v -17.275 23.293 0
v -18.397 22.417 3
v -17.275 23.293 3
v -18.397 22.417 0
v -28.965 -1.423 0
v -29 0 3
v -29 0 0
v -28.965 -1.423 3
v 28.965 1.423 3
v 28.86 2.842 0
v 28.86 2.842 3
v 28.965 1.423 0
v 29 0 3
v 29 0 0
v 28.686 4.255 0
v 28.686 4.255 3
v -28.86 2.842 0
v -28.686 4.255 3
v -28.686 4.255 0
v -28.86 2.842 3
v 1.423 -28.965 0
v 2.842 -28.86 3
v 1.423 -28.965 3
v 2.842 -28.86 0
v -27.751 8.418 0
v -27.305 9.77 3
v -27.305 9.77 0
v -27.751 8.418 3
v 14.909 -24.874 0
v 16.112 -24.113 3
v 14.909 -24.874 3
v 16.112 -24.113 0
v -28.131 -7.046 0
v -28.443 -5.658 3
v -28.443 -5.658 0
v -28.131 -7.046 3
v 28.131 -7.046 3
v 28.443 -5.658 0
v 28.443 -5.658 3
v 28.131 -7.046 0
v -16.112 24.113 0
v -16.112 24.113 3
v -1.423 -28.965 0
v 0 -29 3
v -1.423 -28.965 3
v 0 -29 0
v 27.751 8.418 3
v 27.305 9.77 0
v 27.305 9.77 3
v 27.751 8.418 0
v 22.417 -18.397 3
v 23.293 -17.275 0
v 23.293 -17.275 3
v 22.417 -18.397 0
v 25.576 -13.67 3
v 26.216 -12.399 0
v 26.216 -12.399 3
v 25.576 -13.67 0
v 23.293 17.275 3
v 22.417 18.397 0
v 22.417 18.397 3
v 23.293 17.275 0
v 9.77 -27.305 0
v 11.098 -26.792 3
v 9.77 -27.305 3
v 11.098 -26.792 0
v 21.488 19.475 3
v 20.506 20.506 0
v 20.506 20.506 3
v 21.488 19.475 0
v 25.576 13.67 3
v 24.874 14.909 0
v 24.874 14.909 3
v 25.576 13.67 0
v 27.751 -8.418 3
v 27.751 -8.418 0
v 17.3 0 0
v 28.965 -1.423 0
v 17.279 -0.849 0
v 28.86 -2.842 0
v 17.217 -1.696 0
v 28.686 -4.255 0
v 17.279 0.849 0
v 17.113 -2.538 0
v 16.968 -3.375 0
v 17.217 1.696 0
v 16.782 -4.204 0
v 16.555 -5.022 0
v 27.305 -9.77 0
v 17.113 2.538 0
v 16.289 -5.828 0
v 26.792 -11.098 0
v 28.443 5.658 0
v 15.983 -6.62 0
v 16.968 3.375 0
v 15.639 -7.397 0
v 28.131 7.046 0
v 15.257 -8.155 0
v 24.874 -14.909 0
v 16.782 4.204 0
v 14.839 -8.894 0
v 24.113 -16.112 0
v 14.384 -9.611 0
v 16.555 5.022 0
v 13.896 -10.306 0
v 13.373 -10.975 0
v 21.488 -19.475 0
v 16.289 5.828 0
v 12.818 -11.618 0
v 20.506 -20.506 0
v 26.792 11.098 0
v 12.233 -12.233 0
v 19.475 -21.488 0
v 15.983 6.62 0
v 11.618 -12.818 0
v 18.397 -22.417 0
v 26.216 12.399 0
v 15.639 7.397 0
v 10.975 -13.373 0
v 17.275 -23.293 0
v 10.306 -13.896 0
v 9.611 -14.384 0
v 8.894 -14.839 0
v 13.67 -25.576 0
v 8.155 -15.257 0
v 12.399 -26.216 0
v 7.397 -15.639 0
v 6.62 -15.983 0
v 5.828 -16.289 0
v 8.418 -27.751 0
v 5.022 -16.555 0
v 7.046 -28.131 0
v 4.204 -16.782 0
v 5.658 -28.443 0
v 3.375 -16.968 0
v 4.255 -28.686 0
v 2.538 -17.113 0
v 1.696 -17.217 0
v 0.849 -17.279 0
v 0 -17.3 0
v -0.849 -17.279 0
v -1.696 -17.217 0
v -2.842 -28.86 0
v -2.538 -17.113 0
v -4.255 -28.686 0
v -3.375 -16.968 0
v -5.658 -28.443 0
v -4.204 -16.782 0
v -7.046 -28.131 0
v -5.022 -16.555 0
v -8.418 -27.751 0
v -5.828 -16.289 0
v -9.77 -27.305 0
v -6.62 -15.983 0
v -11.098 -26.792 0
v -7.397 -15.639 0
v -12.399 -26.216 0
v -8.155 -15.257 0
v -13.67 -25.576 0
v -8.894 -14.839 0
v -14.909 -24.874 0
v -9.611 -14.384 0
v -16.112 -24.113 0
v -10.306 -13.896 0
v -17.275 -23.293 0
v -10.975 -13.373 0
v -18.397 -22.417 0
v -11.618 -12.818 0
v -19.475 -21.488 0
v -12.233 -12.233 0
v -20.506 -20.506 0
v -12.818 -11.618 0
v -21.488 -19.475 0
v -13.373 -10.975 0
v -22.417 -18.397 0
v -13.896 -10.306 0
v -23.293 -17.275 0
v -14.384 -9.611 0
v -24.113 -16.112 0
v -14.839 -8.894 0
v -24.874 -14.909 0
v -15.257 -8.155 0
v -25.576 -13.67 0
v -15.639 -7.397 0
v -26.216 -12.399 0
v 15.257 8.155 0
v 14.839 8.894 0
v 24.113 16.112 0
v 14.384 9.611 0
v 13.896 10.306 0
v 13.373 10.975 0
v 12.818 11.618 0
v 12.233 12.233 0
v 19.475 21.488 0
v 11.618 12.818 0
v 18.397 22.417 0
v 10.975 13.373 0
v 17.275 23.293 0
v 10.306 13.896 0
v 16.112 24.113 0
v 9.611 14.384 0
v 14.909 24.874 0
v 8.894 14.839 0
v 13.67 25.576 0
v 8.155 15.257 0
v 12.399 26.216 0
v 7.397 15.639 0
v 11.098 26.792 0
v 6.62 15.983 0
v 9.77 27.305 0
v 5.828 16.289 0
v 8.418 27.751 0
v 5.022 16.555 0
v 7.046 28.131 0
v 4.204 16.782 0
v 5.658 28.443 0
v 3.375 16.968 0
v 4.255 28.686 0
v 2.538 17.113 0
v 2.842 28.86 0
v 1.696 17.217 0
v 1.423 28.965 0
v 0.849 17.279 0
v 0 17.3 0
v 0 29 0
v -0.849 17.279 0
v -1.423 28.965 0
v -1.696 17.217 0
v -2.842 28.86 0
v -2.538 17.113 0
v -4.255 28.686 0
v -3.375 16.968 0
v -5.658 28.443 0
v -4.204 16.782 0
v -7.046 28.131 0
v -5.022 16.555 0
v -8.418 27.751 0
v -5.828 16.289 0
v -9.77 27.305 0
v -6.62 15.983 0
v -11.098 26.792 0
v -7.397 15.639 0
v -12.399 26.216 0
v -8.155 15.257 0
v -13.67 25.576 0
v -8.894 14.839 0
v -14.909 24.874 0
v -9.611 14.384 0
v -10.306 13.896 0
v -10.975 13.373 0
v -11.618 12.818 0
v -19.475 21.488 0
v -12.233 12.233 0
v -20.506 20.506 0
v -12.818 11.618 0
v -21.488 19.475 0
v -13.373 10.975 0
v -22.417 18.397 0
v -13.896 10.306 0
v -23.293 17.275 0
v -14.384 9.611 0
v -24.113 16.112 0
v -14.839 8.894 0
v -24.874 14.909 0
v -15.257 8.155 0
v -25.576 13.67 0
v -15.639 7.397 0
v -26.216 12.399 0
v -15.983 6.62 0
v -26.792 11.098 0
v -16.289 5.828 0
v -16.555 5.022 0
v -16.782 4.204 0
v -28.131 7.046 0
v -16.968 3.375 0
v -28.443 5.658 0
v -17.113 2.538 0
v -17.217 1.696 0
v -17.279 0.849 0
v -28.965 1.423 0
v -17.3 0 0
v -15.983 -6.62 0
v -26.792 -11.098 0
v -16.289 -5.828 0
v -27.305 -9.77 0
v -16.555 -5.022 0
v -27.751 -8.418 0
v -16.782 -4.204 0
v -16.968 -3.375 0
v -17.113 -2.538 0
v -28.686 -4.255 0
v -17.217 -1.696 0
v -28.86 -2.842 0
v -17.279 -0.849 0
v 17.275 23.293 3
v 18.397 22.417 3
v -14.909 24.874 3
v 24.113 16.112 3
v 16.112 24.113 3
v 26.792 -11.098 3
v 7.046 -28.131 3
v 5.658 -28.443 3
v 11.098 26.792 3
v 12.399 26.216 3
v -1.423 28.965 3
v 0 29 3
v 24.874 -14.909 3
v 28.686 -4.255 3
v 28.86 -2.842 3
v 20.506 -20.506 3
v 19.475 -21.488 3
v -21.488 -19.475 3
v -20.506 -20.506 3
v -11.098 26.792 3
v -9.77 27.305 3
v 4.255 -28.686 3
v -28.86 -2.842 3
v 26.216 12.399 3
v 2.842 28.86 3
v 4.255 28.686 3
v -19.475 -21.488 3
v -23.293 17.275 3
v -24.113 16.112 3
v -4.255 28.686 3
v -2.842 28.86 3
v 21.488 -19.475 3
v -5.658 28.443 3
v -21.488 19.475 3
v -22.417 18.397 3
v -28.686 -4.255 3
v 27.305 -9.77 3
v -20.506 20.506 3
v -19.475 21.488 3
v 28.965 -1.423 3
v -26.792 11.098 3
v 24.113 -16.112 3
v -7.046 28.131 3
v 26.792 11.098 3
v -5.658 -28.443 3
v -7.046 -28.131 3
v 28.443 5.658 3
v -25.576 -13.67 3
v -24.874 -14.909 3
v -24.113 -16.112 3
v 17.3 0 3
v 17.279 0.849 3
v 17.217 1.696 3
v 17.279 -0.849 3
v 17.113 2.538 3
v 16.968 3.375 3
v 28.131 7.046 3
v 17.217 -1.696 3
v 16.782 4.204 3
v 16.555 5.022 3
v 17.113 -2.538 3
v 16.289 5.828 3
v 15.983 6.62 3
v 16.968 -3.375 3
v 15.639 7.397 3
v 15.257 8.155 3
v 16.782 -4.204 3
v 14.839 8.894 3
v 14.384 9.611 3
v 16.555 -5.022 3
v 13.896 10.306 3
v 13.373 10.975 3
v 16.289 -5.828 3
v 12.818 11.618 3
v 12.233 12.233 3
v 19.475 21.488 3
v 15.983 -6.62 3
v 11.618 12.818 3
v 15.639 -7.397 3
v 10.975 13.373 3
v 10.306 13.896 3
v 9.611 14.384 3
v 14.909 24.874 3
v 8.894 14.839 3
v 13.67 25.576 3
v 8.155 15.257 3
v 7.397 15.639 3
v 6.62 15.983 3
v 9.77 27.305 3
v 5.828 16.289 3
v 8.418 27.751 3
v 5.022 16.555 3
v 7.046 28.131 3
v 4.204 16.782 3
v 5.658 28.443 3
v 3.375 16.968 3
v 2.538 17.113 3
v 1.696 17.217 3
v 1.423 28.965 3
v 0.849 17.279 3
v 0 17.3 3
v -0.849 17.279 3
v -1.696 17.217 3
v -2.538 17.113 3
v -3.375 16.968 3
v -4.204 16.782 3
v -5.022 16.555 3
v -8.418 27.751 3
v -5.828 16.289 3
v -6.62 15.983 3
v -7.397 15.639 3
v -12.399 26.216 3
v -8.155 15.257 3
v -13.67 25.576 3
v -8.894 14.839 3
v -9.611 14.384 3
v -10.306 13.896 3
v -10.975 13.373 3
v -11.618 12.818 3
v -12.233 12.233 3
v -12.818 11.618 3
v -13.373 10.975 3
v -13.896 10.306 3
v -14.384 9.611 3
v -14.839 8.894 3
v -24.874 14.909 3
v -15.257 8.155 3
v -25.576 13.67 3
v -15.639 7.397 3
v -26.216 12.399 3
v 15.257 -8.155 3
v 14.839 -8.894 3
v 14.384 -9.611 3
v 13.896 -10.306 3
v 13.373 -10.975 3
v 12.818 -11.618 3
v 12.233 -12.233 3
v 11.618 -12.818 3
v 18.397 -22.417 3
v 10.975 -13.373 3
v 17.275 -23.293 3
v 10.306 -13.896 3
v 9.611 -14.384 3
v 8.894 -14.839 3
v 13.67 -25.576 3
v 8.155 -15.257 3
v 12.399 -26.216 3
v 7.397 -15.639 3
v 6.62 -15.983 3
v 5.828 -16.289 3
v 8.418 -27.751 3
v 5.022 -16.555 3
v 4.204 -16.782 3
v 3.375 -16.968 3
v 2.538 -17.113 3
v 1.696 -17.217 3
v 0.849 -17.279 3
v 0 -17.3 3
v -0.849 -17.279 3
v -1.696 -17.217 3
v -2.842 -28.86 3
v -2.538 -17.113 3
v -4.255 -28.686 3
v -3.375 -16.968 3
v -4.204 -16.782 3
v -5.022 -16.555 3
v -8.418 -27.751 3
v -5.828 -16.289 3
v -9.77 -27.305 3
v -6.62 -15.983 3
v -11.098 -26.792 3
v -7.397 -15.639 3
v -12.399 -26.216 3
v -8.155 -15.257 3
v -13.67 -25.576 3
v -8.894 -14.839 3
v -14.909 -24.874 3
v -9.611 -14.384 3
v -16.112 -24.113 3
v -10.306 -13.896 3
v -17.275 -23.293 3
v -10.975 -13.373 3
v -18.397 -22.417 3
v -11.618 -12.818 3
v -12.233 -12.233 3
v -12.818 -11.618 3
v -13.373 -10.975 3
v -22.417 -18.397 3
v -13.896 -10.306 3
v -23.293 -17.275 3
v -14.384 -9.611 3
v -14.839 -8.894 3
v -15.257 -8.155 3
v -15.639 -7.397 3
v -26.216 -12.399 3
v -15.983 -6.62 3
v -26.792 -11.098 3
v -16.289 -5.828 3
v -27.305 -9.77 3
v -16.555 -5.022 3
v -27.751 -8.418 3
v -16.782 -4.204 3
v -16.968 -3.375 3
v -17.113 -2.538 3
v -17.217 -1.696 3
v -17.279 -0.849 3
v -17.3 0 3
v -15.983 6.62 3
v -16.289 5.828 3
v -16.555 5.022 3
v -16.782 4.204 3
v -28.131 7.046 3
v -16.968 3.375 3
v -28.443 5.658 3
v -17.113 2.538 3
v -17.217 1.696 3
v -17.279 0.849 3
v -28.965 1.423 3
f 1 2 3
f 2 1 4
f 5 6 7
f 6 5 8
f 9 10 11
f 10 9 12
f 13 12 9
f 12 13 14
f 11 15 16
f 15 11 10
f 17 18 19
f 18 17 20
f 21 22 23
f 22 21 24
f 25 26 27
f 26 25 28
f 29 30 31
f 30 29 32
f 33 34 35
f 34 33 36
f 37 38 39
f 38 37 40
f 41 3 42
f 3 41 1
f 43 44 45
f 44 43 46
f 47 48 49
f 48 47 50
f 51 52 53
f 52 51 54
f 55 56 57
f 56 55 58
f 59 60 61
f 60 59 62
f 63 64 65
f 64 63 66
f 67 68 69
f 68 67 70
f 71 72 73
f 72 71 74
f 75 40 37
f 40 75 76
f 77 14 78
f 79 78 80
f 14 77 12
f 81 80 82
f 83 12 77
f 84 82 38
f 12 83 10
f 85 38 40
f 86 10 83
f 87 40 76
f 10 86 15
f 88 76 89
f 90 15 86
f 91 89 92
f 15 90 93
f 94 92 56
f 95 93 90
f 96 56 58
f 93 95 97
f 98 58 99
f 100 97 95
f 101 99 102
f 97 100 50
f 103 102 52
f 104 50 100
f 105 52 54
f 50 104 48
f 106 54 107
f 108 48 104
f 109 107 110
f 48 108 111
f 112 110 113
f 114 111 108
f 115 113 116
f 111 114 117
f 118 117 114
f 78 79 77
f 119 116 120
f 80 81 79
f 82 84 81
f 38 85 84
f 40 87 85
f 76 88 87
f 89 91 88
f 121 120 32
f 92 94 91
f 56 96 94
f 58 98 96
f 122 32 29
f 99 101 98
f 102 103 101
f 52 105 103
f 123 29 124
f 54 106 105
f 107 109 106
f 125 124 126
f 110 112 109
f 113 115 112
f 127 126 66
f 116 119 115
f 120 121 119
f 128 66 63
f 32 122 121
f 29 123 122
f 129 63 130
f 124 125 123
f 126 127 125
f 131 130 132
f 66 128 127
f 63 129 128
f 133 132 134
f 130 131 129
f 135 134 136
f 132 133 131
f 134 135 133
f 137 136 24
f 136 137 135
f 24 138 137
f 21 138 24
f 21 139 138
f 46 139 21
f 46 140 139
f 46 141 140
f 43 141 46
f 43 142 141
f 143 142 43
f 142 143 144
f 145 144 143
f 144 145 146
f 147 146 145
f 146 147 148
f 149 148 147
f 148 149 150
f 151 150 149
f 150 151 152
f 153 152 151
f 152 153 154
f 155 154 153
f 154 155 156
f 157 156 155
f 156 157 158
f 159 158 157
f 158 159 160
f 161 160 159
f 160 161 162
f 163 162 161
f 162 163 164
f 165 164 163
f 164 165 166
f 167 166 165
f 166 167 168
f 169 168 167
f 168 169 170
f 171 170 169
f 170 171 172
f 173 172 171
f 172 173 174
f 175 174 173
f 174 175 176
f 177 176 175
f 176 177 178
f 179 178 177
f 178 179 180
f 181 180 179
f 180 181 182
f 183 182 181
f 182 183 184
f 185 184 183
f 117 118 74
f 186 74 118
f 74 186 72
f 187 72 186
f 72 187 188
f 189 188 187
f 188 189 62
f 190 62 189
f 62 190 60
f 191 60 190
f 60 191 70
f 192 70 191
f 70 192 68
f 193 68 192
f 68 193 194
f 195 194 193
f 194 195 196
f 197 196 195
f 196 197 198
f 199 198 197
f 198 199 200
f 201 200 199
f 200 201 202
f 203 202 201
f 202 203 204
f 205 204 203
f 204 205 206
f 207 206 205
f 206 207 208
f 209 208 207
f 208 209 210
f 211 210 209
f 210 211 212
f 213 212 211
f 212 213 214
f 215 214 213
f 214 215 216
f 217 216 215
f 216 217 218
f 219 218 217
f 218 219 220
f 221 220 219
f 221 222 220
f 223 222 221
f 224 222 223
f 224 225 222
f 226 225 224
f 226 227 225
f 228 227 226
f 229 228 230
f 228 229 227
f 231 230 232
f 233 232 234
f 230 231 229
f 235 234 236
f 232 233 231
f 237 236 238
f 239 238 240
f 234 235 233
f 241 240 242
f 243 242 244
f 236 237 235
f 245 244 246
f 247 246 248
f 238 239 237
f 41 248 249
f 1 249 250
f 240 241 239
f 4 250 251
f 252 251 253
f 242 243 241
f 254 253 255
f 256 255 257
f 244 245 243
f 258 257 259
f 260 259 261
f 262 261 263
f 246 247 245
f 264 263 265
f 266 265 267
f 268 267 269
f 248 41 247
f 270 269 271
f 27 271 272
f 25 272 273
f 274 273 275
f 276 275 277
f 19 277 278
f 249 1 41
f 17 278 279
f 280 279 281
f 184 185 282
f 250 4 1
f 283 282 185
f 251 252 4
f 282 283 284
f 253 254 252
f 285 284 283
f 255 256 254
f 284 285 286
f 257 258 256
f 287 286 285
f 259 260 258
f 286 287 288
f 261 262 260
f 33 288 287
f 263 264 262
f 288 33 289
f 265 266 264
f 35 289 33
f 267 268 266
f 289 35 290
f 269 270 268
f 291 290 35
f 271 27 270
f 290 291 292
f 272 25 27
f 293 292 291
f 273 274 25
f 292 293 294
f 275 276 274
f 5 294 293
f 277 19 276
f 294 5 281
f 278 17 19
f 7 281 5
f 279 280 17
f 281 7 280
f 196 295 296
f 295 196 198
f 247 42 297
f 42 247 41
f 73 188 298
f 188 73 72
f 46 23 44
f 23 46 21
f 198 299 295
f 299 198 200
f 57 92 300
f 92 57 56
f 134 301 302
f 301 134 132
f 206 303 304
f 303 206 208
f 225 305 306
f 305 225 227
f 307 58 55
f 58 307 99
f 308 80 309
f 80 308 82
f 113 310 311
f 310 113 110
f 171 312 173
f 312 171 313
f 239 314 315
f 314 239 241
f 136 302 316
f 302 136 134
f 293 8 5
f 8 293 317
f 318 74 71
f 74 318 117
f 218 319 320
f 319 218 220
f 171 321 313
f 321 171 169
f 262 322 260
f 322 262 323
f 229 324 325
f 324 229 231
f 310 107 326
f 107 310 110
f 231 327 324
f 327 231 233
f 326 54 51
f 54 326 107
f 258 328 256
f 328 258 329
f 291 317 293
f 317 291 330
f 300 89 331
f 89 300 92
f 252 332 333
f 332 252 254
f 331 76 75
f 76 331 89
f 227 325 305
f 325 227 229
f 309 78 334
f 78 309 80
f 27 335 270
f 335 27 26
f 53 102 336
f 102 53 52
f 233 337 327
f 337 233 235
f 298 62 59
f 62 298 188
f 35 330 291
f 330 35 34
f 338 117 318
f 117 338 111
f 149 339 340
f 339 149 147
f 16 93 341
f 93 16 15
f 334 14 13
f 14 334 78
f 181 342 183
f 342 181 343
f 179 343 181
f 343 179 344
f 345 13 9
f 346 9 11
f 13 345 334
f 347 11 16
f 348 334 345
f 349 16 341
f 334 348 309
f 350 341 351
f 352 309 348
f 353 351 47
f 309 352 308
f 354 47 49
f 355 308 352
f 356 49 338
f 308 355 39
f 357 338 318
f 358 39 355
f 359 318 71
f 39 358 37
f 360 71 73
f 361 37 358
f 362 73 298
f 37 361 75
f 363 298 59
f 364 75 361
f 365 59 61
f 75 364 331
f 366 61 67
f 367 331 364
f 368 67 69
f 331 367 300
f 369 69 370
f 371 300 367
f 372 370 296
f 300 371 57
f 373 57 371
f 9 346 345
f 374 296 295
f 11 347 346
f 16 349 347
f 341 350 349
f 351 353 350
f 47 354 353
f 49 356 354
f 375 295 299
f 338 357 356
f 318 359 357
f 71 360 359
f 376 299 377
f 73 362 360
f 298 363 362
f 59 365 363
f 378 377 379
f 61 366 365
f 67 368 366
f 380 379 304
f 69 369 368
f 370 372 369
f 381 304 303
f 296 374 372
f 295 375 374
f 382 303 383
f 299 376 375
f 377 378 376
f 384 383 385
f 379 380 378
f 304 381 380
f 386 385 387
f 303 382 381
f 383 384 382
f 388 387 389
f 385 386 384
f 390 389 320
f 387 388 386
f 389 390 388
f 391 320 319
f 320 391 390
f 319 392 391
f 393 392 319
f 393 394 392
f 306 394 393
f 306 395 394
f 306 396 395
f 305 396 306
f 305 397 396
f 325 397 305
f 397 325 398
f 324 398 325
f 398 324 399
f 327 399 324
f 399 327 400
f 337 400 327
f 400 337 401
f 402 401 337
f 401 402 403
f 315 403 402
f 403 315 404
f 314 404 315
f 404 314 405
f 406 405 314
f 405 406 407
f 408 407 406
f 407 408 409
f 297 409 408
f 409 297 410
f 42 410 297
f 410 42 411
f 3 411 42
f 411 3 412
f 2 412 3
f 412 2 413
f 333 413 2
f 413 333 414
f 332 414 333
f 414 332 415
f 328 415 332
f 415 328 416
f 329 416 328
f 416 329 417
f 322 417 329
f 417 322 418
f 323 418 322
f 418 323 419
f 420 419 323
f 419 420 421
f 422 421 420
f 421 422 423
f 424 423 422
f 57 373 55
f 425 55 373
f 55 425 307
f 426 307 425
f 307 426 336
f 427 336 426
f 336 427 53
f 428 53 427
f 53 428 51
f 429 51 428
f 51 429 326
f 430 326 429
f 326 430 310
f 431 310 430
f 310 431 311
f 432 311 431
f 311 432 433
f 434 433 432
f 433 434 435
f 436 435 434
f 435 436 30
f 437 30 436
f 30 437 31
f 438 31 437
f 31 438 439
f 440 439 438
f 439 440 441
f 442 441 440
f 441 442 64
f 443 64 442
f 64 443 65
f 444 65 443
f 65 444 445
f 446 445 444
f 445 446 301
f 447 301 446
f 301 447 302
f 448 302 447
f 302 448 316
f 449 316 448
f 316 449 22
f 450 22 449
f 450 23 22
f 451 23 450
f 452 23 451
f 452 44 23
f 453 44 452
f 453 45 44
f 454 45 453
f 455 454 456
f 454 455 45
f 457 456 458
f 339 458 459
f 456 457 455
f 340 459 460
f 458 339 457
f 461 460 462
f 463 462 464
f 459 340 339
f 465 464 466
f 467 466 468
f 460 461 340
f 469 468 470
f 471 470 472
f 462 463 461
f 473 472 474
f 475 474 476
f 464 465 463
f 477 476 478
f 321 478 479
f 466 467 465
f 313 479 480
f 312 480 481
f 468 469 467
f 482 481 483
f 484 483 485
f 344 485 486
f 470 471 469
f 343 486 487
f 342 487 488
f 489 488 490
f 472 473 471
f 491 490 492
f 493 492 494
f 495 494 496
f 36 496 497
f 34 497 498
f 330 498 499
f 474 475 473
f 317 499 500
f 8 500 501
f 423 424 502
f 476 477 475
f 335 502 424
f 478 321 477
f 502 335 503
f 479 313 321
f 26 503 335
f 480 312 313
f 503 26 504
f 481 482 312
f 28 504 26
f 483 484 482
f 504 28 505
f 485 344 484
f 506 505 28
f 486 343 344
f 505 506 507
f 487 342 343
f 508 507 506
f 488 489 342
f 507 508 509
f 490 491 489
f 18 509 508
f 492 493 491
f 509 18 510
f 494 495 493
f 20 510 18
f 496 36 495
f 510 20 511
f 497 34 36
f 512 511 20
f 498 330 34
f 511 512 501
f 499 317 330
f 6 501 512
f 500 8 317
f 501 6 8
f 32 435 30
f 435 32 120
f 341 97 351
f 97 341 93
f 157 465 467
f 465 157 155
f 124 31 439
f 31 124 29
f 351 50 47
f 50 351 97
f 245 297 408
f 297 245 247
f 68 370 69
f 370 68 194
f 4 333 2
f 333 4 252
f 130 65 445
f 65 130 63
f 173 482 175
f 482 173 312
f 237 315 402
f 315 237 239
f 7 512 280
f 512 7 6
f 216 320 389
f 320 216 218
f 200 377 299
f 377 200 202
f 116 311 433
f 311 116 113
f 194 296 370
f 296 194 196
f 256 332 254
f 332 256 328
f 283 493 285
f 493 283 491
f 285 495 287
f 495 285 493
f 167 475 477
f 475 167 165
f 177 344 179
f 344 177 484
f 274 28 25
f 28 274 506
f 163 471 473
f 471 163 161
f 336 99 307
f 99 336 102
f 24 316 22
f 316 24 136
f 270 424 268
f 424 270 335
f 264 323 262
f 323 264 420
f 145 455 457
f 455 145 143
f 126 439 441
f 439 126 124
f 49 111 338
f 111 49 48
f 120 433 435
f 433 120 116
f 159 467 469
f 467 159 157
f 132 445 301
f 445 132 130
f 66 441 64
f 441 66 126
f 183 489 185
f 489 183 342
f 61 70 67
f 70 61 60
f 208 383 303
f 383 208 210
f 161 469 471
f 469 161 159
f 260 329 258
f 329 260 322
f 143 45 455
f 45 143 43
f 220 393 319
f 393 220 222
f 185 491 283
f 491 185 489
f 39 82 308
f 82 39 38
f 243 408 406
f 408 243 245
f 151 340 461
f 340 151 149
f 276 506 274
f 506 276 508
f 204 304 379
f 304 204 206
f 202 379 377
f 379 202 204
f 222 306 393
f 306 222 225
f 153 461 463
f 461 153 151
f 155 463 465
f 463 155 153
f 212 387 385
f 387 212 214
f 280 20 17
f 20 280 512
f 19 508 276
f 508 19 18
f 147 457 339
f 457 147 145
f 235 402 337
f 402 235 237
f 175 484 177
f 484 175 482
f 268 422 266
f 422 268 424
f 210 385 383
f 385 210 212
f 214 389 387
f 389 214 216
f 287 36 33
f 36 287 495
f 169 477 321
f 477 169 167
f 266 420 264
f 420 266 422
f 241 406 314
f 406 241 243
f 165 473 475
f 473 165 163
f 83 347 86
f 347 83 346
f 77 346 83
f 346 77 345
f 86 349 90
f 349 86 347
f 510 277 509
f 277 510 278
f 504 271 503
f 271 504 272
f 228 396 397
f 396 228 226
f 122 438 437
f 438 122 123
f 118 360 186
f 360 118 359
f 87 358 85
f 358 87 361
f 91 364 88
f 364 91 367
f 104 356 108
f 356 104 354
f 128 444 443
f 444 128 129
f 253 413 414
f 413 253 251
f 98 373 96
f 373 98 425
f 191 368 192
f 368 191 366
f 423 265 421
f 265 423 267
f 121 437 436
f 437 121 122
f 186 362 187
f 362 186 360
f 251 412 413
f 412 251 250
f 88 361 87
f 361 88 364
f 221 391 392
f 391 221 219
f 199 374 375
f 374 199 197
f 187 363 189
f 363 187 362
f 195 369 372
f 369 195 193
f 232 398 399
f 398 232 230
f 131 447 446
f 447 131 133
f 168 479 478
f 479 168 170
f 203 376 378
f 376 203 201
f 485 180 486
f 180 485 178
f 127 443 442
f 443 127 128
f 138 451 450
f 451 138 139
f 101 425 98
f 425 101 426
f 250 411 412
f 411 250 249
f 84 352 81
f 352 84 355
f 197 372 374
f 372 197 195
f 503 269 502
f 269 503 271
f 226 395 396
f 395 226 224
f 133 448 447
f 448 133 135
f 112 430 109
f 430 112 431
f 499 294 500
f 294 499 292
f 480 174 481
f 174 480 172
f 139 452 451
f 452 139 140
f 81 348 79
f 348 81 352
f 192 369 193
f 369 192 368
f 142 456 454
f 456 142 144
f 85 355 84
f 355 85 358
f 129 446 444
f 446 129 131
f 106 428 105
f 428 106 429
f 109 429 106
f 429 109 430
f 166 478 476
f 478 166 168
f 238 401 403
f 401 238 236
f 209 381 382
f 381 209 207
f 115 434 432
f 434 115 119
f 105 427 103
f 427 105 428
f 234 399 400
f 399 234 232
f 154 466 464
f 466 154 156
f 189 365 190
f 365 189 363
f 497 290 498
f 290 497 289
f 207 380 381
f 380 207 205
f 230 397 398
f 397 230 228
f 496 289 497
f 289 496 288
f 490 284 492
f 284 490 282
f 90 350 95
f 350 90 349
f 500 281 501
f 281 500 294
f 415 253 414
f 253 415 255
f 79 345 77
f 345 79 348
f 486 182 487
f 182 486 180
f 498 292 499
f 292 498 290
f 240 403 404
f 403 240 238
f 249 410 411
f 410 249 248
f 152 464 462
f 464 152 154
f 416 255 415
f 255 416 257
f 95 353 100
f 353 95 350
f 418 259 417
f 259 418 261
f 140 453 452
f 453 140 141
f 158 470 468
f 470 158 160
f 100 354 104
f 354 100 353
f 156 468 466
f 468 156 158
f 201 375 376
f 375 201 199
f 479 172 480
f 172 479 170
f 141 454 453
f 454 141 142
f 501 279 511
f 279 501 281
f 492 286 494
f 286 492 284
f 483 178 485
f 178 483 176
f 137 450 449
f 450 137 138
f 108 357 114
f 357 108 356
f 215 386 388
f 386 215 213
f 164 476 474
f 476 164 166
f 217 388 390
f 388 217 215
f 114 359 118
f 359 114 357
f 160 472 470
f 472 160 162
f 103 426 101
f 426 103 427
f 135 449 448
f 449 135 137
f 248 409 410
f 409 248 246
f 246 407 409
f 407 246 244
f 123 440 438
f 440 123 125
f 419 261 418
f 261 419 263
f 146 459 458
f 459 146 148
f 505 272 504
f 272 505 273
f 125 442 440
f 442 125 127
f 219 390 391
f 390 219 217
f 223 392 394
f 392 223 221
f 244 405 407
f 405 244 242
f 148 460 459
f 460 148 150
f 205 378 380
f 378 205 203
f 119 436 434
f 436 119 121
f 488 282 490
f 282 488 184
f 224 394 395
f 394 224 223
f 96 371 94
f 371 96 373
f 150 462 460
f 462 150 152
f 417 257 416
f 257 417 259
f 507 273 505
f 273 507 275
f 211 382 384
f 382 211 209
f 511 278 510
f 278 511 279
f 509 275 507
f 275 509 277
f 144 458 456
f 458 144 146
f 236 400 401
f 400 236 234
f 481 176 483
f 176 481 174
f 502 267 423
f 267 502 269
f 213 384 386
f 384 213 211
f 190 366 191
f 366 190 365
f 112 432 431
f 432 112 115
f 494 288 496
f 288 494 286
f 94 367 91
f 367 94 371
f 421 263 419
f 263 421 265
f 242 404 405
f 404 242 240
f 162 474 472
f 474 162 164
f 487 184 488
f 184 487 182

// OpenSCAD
// pivot_shim.scad — fills the gap between the pivot block's flange and the upright, around the 34 mm boss,
// so the flange (and the rib stops on it) is backed over its full face instead of only on the boss.
// For a block already printed with a flat back (v1-v3). Slip it over the boss, then bolt the block on as usual.
// Print flat, 100 % infill. If it rocks, sand it a little thinner; if there's a gap, print it at 3.2.
$fn = 128;
T  = 3.0;         // the boss height (measure the gap: flange rim to upright)
OD = 58;          // flange diameter
ID = 34.6;        // over the 34 mm boss
difference() { cylinder(h = T, d = OD); translate([0, 0, -1]) cylinder(h = T + 2, d = ID); }
